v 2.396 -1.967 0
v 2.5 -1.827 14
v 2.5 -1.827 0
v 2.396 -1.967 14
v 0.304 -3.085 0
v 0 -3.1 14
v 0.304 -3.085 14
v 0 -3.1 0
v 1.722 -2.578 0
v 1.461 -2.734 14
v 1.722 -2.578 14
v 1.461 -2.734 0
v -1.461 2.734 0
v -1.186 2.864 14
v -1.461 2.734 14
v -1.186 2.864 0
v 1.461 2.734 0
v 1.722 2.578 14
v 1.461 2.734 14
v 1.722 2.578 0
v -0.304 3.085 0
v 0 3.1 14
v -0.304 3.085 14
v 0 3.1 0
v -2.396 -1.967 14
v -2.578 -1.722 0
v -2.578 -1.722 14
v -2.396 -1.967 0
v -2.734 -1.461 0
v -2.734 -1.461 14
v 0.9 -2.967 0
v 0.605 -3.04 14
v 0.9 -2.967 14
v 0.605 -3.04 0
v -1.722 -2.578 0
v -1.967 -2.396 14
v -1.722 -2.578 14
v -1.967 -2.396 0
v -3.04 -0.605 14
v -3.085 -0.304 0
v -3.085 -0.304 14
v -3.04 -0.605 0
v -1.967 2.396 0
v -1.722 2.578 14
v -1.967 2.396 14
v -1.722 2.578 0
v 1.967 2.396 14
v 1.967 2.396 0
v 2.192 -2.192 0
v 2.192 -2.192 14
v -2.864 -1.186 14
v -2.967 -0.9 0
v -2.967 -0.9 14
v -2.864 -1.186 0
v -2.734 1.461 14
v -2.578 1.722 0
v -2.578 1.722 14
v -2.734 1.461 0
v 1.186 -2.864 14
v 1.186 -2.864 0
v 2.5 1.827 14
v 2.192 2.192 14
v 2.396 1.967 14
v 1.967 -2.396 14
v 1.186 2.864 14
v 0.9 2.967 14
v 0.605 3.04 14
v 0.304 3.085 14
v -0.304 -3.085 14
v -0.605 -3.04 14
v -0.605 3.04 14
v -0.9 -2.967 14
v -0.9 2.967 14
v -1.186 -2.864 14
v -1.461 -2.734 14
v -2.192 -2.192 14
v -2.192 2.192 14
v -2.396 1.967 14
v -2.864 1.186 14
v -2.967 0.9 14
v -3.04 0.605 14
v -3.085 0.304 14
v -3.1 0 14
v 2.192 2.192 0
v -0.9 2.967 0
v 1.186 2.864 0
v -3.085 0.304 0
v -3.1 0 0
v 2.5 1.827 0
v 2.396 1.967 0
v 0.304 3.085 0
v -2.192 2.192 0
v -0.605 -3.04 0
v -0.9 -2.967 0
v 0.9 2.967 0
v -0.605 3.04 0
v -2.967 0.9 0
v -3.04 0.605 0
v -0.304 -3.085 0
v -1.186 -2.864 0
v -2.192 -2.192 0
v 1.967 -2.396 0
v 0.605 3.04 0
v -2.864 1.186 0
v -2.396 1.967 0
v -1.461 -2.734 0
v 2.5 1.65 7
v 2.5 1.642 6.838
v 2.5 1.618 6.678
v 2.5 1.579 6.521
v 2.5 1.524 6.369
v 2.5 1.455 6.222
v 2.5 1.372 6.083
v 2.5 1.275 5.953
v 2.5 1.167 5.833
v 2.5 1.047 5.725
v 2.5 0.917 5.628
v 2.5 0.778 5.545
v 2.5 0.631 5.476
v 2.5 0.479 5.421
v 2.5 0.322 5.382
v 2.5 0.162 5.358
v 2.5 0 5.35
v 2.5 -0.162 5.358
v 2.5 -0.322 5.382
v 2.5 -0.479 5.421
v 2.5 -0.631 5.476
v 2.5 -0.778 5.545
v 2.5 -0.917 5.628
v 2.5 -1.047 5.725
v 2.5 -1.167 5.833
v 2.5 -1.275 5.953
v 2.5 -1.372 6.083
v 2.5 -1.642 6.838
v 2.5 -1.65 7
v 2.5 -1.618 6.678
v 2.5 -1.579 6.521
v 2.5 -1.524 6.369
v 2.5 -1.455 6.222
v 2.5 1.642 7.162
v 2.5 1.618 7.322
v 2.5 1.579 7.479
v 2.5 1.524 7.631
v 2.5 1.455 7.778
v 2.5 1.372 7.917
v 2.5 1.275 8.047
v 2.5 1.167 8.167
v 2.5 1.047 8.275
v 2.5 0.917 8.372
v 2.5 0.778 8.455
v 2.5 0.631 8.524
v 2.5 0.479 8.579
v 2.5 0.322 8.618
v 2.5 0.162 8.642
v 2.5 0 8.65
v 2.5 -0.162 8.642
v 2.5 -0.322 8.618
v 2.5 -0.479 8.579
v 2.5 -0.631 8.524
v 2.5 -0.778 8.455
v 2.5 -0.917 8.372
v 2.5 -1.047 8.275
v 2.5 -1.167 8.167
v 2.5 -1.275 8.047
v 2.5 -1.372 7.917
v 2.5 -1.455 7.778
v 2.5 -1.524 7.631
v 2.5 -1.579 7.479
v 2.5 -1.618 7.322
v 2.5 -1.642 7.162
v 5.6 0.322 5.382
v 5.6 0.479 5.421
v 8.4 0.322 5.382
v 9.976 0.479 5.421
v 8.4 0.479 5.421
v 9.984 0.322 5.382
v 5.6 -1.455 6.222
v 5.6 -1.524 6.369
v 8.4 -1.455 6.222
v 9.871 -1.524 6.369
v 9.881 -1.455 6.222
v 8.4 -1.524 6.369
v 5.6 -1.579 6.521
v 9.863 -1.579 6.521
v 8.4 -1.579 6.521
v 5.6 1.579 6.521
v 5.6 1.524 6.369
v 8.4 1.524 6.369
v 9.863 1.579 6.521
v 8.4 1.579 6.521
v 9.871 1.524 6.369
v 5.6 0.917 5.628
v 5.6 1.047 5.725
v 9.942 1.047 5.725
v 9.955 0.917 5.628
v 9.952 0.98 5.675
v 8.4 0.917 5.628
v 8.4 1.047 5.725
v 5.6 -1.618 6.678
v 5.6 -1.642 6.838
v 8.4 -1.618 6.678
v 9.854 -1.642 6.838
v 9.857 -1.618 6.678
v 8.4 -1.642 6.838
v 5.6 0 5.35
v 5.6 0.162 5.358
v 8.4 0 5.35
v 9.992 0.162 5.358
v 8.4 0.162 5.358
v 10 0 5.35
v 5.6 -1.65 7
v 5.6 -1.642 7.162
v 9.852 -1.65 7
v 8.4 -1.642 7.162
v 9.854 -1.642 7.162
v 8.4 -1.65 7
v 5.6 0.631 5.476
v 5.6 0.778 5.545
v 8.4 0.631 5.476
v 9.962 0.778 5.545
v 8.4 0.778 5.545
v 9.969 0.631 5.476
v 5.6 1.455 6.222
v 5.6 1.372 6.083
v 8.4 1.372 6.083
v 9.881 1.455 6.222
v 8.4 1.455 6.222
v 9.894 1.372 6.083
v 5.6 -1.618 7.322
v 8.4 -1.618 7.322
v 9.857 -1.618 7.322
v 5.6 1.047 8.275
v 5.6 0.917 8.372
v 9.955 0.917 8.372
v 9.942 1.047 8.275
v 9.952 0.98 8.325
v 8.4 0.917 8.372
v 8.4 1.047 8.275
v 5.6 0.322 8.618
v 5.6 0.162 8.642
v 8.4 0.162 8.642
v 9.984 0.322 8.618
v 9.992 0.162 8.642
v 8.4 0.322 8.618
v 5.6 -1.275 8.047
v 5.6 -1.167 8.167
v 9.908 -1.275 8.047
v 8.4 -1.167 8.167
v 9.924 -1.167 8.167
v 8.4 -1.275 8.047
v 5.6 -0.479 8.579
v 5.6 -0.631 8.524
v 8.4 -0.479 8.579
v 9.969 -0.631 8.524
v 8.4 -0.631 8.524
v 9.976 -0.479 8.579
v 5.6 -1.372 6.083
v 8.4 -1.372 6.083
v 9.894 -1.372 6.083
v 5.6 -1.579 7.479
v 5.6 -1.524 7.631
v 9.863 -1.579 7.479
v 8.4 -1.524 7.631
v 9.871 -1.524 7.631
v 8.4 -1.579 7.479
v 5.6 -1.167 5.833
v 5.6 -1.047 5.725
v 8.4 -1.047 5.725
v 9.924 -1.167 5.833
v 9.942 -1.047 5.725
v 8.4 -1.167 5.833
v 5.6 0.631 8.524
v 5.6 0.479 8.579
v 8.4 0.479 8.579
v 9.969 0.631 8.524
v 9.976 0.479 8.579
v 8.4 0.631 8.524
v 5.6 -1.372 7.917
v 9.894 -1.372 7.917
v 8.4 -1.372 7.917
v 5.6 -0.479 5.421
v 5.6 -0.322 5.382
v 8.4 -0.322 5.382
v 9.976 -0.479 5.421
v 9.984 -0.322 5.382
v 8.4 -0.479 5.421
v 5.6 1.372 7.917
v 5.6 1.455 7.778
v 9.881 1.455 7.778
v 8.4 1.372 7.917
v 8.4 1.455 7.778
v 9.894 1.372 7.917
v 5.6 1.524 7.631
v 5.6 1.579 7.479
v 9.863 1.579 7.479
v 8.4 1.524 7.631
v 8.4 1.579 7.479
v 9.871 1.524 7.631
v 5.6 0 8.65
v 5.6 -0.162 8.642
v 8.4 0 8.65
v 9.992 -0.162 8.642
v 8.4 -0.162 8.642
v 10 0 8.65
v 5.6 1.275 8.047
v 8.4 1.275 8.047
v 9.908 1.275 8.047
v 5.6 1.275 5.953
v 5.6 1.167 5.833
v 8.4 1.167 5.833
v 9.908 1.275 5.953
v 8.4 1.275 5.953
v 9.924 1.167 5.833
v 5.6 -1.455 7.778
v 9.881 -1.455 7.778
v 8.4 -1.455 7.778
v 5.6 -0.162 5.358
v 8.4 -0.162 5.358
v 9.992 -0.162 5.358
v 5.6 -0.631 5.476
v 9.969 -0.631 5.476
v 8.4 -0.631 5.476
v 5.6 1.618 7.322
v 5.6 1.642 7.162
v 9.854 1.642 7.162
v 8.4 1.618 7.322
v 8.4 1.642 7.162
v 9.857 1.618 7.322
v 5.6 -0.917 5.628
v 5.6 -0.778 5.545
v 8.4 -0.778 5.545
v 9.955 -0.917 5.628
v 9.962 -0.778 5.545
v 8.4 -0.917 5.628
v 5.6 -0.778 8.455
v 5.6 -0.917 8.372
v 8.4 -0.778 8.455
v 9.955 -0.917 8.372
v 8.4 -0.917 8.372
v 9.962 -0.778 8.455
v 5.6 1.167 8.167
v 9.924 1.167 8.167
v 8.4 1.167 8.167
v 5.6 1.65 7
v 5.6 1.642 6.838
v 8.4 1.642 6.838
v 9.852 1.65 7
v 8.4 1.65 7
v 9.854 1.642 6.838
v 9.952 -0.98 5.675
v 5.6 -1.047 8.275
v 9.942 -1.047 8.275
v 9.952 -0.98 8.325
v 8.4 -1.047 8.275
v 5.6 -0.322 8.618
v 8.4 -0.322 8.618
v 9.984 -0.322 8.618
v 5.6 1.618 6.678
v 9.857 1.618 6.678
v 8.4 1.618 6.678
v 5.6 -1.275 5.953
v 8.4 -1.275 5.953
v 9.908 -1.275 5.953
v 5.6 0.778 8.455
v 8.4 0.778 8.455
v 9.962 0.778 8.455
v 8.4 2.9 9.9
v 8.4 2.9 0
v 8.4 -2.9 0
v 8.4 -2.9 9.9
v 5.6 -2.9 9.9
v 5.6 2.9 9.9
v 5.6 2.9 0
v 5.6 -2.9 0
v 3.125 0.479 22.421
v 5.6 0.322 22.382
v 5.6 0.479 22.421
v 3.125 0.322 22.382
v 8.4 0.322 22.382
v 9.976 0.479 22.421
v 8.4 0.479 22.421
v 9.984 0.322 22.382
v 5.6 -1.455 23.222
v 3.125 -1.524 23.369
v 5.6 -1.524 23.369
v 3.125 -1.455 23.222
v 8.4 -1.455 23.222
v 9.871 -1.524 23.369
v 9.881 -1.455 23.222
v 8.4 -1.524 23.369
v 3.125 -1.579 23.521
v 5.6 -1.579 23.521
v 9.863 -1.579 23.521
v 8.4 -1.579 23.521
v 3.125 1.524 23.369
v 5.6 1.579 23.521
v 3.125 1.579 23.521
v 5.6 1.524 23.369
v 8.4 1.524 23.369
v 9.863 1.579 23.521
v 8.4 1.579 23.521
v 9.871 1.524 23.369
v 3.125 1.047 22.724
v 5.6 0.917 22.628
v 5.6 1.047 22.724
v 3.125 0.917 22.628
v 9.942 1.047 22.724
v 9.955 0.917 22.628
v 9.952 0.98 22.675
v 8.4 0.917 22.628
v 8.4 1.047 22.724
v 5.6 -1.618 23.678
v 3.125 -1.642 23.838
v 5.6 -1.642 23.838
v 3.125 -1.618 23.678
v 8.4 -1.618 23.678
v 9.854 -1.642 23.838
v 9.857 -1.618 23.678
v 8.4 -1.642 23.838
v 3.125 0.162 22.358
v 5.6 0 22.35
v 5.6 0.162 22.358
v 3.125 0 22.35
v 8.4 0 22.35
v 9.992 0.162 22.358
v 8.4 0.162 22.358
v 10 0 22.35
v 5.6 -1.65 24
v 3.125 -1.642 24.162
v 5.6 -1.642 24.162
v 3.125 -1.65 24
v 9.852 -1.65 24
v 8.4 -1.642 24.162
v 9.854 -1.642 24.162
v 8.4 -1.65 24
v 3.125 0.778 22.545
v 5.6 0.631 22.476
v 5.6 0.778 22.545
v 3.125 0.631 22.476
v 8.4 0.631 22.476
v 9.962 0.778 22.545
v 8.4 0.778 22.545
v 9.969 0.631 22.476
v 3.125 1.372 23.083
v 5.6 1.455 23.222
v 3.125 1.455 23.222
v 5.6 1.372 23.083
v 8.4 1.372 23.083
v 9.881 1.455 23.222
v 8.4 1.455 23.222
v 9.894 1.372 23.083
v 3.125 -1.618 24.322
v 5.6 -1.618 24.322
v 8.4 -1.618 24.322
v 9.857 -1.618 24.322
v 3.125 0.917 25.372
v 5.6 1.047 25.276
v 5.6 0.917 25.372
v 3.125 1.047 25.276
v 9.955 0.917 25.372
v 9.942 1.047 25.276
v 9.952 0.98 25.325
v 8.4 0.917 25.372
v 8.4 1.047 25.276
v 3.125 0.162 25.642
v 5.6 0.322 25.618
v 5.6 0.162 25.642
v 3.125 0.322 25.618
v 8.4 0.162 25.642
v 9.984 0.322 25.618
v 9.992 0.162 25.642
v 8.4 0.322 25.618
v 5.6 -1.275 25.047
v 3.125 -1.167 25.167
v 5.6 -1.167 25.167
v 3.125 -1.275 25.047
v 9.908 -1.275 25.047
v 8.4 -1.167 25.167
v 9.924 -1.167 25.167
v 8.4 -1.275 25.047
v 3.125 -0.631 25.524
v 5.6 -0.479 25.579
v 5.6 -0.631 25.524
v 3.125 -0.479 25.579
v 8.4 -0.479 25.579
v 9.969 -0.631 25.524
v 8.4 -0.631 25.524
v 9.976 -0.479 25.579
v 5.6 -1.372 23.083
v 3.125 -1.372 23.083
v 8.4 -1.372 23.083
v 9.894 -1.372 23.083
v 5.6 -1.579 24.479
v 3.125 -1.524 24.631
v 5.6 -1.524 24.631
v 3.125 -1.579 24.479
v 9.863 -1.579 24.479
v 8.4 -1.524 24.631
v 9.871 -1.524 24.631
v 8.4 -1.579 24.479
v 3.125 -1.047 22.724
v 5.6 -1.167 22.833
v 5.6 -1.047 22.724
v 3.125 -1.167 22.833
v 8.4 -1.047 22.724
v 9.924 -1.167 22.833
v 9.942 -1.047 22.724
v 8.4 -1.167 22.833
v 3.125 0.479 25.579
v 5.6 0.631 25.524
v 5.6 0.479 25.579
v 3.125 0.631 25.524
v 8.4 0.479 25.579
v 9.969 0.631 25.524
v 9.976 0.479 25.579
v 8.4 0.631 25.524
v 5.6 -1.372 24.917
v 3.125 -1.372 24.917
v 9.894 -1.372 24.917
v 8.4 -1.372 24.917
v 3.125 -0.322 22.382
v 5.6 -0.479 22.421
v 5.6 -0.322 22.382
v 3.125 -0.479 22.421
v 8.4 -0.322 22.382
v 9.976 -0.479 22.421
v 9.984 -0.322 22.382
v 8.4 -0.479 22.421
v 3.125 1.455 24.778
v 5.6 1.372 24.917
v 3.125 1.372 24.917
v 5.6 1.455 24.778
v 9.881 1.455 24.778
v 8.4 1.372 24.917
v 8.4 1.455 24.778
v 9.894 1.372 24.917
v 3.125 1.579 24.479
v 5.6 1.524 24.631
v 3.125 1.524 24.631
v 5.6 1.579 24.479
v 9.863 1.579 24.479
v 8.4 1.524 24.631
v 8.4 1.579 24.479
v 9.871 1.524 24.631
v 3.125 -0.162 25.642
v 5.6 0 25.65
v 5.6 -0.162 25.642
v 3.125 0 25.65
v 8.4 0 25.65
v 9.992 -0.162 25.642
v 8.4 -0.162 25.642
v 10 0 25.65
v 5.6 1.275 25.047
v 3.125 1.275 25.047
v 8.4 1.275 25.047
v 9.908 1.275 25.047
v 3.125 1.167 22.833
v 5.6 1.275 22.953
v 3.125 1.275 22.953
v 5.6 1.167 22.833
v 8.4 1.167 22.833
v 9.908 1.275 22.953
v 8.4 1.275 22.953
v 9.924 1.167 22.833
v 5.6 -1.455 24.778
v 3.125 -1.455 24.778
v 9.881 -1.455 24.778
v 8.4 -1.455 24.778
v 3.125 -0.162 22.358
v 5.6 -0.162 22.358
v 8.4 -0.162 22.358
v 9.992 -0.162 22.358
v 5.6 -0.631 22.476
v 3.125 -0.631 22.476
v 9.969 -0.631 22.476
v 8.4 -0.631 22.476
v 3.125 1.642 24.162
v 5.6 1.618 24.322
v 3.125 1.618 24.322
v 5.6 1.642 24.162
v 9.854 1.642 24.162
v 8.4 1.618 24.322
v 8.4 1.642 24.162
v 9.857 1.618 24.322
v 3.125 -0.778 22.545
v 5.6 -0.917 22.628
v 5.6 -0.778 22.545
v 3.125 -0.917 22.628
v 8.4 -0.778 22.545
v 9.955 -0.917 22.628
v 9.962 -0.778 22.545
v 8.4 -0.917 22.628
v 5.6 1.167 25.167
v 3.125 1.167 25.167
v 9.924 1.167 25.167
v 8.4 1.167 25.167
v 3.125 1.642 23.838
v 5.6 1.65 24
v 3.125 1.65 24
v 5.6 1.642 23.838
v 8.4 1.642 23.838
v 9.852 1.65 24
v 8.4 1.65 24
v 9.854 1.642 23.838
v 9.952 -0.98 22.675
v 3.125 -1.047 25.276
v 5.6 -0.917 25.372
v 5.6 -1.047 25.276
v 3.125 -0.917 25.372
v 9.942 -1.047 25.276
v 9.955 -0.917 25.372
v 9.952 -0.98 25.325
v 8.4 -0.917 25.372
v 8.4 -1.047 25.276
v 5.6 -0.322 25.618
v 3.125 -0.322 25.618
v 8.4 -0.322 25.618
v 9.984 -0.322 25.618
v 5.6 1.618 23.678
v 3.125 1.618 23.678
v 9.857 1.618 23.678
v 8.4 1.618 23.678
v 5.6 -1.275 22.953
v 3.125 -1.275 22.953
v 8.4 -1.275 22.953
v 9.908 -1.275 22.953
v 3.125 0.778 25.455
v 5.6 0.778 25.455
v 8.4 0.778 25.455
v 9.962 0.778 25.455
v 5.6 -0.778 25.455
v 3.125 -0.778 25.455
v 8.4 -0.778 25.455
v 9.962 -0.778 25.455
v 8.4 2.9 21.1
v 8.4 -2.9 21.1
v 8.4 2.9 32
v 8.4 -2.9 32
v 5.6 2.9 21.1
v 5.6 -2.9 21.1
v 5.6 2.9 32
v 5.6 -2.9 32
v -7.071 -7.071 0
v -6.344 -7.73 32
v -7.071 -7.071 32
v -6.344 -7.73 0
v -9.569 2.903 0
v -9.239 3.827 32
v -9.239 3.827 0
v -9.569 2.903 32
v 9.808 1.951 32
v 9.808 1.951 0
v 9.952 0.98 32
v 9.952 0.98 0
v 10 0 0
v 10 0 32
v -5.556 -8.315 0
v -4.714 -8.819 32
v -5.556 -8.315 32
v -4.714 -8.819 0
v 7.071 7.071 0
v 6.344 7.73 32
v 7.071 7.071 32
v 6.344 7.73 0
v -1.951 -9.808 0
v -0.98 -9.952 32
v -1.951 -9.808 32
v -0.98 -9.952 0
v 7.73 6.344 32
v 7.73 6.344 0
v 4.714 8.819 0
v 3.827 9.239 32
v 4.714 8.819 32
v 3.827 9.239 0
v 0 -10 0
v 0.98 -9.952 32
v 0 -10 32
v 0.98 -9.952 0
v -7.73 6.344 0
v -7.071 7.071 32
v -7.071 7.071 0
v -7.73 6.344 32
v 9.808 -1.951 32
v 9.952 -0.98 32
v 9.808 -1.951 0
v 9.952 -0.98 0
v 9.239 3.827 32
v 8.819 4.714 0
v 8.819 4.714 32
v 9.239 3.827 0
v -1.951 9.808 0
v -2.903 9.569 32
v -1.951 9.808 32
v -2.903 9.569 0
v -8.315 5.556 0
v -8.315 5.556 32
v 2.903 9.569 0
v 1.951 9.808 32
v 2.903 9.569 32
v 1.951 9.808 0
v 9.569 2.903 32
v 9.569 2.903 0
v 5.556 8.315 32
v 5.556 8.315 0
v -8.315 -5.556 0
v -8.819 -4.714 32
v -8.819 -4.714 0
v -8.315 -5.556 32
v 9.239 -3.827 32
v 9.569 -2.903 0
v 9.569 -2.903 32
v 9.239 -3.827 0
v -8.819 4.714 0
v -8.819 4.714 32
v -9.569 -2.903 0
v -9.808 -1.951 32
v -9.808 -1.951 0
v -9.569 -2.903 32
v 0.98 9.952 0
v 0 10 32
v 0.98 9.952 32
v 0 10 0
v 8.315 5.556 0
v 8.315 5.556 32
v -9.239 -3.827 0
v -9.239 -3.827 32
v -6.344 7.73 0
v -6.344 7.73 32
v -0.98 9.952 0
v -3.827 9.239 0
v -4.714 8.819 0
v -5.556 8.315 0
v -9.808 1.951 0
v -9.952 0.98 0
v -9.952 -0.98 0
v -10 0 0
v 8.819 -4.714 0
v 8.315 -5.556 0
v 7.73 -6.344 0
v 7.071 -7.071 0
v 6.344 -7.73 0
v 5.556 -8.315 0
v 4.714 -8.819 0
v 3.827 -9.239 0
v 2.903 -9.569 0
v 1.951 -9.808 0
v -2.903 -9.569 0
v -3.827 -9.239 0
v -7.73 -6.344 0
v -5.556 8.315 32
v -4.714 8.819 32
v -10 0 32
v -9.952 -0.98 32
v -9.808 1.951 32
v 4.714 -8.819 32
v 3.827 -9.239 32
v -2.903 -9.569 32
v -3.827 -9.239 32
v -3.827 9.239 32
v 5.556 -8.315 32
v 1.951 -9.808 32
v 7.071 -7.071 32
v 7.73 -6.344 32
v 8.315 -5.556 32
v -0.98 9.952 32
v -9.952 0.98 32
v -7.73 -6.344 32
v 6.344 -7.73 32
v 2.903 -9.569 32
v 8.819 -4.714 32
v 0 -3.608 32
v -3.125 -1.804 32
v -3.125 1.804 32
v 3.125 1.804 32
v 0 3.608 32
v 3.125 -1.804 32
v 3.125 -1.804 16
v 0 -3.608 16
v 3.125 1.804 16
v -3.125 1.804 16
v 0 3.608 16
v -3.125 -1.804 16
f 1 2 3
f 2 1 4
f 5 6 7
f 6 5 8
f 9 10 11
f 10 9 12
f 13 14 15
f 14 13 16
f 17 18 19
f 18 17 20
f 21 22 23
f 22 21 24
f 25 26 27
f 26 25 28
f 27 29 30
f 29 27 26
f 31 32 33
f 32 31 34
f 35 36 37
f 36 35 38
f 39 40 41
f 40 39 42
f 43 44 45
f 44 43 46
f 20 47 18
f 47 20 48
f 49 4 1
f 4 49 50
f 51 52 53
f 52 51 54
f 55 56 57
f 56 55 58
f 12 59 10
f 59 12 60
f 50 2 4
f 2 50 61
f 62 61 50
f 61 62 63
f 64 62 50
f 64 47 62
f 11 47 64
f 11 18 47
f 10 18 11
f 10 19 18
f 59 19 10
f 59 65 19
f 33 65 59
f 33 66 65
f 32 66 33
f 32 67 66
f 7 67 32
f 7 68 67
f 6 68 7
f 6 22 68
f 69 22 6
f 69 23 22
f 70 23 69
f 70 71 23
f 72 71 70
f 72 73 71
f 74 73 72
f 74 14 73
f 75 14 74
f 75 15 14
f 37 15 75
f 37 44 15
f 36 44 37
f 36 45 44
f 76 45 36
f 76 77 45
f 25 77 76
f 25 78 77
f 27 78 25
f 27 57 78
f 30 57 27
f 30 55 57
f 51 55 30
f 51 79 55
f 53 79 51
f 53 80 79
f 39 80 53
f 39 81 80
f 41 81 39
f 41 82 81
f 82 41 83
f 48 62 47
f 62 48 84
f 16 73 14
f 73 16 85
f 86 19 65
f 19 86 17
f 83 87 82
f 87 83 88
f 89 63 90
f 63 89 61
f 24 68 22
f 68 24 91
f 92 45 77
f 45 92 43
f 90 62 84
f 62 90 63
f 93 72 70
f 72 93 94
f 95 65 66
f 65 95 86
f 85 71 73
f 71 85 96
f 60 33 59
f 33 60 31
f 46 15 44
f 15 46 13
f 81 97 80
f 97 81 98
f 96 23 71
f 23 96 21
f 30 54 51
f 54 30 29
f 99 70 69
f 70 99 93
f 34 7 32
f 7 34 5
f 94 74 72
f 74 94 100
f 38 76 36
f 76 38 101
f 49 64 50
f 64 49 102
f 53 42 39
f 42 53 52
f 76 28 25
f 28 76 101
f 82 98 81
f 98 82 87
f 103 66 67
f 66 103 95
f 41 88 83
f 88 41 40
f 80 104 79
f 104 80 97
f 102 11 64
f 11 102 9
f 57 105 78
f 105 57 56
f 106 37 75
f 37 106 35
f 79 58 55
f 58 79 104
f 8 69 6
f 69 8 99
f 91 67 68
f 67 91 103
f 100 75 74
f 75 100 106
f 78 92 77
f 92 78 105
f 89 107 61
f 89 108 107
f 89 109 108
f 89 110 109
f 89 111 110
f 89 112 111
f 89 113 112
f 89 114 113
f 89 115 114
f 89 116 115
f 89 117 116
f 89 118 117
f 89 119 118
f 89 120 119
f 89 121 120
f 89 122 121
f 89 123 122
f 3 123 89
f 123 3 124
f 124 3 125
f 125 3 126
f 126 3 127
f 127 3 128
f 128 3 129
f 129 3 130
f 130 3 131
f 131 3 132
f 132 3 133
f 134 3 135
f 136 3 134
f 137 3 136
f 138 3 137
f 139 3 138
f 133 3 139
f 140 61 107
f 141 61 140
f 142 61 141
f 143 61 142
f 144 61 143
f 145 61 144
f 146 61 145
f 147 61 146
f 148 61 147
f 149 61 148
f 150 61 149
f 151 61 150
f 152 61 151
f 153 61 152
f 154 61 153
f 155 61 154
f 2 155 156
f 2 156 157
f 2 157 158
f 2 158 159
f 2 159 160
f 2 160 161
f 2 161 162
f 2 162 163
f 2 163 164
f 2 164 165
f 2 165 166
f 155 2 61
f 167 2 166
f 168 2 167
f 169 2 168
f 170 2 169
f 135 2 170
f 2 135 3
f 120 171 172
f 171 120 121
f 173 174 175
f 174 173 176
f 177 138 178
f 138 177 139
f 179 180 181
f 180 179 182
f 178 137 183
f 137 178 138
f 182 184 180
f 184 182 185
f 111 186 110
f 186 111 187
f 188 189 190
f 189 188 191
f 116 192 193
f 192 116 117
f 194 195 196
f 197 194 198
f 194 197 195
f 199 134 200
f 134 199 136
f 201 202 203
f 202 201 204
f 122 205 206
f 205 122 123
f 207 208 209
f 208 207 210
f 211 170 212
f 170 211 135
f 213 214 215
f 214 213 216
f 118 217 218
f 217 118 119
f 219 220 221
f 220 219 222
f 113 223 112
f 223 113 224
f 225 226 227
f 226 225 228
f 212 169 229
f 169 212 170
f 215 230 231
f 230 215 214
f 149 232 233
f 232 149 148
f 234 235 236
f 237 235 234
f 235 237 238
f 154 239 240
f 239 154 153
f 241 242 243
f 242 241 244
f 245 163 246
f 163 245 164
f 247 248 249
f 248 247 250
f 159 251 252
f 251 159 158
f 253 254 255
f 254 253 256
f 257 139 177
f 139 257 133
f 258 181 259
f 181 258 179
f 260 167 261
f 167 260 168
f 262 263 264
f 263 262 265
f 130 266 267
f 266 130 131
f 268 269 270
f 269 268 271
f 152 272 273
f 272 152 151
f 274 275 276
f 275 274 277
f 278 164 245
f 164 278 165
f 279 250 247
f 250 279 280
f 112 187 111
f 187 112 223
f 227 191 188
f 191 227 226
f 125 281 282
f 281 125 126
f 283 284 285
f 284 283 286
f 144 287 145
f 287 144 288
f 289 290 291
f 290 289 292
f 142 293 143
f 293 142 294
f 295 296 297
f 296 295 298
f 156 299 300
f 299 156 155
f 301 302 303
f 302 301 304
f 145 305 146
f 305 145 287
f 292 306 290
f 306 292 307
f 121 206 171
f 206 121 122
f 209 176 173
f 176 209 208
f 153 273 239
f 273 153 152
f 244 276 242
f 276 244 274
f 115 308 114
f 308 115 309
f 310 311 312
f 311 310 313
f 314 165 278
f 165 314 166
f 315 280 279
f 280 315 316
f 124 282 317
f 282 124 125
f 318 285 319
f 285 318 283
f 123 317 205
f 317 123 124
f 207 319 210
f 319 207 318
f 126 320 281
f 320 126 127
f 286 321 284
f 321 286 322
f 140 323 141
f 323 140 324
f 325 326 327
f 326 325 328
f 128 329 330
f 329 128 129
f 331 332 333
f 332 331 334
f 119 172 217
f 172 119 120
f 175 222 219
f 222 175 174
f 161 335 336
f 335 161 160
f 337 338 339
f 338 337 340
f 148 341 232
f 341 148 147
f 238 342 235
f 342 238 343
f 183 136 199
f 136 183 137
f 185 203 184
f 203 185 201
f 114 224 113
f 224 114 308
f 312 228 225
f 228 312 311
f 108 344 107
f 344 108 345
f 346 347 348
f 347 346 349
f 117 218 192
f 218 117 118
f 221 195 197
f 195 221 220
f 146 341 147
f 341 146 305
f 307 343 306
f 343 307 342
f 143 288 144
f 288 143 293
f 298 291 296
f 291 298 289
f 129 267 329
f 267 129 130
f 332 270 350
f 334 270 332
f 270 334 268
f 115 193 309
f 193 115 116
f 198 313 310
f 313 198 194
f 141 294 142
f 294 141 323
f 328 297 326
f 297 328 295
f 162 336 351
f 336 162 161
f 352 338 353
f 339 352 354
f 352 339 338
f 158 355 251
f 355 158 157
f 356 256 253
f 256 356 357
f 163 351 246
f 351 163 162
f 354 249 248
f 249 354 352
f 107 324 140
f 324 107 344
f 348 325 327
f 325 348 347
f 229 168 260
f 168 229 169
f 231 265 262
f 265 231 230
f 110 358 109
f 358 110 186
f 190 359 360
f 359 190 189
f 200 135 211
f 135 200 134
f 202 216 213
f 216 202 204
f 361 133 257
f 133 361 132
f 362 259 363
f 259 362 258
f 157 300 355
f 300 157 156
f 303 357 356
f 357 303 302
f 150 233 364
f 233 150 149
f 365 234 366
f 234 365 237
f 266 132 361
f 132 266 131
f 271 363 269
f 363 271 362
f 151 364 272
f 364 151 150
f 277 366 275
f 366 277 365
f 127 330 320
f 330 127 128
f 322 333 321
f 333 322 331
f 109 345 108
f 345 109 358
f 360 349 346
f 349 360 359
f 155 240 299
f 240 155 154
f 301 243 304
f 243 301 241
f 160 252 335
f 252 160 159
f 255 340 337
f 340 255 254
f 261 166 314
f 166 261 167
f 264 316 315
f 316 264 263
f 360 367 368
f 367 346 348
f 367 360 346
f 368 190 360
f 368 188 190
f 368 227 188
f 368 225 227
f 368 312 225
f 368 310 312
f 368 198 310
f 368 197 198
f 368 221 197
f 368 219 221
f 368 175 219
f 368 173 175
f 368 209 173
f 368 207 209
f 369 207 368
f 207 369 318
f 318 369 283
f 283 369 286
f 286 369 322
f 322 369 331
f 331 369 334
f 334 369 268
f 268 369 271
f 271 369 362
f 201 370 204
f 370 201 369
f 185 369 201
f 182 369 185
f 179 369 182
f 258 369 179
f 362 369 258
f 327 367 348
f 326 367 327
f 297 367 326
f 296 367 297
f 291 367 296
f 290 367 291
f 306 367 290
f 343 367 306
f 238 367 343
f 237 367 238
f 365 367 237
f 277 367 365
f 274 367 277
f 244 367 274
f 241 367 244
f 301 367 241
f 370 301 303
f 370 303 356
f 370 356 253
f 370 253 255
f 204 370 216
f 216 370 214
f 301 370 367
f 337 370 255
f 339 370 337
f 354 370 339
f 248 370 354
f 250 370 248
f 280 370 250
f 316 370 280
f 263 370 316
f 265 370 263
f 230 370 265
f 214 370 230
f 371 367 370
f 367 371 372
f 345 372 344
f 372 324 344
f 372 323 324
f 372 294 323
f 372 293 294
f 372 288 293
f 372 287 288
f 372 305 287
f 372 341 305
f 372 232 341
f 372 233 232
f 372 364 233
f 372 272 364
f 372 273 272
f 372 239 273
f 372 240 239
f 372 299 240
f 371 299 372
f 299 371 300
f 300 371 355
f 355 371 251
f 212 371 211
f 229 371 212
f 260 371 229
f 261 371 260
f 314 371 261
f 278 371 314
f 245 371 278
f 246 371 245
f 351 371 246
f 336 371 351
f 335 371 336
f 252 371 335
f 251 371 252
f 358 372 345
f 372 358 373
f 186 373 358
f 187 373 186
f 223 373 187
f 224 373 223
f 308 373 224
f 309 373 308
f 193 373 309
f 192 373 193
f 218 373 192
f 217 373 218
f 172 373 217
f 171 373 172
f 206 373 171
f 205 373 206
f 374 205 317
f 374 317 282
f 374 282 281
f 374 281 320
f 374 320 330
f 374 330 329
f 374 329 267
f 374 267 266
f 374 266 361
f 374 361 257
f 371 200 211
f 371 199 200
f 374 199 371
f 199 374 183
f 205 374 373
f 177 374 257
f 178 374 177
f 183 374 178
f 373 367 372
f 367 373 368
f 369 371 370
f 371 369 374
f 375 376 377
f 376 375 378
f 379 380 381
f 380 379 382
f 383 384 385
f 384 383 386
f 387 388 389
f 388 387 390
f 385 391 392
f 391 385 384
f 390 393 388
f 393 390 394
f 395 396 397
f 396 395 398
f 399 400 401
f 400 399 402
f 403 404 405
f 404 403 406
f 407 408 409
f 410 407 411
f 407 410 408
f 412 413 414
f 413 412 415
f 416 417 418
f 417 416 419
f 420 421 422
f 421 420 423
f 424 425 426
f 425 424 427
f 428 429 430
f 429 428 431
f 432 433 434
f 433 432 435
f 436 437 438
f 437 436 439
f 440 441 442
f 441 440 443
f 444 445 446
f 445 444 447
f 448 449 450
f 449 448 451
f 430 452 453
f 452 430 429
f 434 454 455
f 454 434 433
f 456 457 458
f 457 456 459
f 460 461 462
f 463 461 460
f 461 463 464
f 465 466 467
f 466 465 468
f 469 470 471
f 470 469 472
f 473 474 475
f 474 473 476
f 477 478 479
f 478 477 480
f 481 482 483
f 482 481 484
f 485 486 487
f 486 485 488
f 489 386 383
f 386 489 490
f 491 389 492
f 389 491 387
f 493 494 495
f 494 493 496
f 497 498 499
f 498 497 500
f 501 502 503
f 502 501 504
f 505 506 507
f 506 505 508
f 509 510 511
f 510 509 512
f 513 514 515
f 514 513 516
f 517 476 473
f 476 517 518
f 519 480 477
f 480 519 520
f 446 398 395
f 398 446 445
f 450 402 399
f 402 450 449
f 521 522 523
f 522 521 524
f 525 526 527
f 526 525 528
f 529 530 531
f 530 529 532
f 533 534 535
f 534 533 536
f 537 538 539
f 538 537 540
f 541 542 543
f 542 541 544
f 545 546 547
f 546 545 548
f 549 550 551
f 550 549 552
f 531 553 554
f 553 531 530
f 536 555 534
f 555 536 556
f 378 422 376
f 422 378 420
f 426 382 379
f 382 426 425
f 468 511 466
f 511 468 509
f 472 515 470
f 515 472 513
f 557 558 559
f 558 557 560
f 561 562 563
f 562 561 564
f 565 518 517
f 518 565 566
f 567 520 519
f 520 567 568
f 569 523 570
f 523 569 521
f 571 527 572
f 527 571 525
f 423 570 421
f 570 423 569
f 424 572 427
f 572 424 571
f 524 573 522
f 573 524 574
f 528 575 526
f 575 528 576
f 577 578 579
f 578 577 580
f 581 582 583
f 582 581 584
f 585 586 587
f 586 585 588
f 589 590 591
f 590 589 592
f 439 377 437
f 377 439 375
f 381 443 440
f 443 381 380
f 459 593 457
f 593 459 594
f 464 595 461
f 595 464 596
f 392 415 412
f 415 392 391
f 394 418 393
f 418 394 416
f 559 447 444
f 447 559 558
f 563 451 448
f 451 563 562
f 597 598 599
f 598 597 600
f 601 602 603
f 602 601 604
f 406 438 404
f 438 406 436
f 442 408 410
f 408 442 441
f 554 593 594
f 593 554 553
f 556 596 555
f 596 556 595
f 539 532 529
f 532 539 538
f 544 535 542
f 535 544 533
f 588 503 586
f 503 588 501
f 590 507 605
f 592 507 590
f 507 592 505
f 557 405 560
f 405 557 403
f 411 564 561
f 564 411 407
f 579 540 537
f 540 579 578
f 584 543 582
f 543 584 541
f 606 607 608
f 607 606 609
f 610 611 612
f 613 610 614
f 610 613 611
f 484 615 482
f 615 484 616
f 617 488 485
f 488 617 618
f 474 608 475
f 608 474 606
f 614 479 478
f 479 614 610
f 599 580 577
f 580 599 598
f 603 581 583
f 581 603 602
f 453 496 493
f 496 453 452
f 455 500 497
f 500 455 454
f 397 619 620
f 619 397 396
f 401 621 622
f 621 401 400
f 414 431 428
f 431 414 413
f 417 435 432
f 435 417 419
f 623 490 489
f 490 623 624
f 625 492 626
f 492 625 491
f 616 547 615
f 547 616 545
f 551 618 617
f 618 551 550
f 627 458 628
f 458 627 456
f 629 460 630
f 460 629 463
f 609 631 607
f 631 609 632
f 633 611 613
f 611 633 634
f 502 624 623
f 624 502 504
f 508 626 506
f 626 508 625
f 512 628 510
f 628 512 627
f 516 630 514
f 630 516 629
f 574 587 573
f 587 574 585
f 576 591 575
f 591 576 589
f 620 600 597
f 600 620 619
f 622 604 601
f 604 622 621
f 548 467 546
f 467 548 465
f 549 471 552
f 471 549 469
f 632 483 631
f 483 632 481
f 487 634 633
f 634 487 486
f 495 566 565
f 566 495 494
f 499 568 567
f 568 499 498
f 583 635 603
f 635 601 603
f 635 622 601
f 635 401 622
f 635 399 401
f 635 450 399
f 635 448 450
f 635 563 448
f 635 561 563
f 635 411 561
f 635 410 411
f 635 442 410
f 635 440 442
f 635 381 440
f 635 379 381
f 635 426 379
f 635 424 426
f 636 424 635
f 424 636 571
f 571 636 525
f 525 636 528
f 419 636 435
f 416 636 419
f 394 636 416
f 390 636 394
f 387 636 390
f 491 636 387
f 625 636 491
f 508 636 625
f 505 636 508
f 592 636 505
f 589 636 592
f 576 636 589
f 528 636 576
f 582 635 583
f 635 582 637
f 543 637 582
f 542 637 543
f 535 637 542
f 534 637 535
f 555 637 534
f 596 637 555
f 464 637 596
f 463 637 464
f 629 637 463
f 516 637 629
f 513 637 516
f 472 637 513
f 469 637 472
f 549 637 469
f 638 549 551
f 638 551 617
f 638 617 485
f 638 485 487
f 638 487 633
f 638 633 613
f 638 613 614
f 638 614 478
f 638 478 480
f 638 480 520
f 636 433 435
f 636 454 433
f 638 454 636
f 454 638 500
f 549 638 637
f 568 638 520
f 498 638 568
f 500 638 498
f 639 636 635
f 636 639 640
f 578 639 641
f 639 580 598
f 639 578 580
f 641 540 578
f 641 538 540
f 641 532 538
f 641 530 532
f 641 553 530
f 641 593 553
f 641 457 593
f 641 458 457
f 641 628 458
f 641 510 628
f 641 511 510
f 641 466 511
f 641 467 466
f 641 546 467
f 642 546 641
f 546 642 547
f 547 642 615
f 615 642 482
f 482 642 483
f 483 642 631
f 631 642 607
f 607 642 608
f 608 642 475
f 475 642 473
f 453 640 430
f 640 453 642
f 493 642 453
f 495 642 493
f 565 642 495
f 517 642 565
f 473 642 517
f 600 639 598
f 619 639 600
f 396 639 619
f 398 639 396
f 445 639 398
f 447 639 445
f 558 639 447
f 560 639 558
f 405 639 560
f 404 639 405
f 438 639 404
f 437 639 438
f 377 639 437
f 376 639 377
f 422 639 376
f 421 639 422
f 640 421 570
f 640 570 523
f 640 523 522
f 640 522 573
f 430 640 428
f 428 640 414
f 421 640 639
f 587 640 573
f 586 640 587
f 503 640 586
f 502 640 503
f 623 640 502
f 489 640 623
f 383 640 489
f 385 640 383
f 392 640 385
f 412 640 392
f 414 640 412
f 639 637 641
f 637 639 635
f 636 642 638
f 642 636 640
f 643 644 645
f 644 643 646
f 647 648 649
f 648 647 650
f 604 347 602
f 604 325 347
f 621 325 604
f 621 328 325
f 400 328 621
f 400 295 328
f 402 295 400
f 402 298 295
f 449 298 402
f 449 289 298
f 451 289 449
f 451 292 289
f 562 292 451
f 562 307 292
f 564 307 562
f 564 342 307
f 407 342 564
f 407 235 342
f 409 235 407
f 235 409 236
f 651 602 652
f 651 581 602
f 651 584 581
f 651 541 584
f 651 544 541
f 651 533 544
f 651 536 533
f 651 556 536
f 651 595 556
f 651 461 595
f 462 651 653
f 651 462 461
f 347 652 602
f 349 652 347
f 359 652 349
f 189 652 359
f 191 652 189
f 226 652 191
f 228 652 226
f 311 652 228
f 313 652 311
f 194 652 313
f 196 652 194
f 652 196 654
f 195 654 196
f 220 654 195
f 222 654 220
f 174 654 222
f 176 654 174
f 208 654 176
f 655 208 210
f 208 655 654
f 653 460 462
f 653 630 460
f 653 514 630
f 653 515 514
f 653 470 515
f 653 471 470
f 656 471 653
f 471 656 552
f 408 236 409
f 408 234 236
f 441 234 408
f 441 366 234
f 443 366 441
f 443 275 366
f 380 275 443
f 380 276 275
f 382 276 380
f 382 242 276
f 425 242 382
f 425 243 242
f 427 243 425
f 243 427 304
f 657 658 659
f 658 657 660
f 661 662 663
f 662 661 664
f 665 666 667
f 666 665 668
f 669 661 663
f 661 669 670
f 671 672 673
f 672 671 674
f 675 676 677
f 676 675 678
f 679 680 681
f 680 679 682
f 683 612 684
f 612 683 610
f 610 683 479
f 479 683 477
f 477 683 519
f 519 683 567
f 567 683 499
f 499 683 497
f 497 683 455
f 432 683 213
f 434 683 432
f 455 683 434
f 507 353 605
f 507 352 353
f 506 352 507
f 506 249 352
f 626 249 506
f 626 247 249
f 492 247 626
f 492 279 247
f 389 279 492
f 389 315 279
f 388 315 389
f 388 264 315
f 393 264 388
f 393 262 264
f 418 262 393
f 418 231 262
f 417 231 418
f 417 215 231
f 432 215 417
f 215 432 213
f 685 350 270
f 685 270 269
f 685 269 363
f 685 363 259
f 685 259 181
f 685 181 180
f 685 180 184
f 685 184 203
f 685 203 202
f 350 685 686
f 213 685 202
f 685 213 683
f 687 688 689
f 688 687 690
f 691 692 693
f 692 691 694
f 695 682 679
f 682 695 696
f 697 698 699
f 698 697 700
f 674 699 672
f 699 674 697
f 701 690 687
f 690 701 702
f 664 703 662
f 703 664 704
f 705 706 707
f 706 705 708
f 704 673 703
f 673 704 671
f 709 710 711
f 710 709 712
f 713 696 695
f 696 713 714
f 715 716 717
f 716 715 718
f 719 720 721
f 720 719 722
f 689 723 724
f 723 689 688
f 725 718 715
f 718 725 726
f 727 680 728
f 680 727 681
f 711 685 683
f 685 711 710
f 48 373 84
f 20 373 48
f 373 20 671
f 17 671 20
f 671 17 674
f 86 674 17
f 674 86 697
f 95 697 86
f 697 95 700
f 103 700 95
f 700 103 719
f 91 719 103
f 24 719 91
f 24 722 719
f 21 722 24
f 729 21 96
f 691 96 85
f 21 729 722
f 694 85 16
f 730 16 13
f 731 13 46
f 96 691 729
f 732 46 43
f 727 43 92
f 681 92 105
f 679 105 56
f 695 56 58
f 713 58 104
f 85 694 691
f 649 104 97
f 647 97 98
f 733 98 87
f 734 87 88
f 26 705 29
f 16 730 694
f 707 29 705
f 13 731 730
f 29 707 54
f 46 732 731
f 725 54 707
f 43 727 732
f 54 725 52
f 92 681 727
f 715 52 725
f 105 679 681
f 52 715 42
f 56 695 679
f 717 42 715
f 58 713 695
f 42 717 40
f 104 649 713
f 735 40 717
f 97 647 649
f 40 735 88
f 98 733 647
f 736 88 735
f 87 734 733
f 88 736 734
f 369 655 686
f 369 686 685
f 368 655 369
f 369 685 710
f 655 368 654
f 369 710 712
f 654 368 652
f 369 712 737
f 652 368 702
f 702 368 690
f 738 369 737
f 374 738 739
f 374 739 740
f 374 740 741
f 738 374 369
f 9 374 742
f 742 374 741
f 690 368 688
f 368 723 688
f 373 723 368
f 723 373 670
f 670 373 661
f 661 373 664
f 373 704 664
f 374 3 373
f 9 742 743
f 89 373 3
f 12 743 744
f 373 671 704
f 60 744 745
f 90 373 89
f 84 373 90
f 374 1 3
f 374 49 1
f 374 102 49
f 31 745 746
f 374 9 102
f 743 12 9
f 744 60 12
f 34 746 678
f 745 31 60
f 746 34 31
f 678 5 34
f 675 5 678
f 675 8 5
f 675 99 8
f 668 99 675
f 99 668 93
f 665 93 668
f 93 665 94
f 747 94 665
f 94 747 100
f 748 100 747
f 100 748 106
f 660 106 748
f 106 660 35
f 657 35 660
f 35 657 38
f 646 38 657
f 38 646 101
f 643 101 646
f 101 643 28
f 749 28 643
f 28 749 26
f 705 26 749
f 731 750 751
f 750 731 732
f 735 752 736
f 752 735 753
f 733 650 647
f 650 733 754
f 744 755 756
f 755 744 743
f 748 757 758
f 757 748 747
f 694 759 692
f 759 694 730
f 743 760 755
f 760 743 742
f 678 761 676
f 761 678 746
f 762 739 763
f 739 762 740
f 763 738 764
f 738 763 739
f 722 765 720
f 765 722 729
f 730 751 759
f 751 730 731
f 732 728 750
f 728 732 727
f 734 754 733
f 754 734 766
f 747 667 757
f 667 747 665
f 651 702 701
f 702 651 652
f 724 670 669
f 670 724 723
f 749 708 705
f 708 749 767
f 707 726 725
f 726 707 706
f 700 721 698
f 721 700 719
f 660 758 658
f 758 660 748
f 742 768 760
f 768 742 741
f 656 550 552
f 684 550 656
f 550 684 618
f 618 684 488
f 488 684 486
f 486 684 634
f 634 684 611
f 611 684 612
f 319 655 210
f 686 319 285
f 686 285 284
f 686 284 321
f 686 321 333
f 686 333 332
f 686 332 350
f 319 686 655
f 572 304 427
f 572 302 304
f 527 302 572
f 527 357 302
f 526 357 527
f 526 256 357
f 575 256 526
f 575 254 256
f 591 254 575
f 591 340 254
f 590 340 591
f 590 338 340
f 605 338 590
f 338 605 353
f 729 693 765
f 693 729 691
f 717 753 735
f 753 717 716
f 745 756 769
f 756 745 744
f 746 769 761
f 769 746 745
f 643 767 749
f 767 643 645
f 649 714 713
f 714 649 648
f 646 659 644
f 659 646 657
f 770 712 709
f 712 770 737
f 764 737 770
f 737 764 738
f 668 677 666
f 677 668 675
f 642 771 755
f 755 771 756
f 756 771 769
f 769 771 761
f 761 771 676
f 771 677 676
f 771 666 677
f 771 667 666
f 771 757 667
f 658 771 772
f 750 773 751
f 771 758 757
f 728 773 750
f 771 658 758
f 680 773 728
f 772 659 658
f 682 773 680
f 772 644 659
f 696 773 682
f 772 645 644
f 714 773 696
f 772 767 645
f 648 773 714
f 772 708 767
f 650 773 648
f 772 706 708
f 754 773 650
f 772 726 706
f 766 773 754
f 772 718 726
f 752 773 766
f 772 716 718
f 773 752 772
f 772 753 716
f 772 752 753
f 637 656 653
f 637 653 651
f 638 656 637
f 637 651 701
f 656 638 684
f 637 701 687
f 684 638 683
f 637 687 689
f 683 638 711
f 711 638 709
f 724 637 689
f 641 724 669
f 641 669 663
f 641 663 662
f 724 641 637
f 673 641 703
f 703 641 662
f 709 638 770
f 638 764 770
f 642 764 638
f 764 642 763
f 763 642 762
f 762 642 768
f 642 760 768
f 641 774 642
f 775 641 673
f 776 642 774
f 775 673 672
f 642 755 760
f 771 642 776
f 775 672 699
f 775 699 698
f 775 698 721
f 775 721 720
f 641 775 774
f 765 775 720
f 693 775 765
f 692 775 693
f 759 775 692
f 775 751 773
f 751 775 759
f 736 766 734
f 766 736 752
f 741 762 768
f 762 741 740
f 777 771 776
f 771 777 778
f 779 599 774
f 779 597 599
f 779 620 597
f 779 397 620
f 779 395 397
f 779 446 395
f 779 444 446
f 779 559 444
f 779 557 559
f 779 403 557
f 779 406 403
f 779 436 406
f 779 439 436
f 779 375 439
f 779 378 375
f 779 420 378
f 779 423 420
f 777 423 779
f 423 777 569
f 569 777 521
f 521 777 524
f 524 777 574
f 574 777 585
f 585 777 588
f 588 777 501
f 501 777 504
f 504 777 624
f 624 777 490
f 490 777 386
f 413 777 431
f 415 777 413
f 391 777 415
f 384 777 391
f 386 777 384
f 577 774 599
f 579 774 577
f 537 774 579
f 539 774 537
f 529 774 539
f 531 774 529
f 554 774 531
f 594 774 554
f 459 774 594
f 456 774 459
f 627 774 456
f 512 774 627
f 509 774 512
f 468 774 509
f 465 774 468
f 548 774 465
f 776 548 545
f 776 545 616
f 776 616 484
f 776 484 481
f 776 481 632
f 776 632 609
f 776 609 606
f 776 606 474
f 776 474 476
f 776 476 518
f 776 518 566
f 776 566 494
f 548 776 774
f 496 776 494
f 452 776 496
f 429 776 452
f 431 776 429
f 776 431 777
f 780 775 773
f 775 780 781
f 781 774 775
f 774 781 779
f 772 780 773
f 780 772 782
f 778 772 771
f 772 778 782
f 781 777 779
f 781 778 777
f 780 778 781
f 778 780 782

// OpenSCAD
// TROTTEN kaplin: motor mili (6 mm D-kesit) <-> 6 mm altıgen çubuk (kesilmiş alyan)
// Dik basılır, motor ucu tablada. PETG, %100 doluluk veya 6+ duvar önerilir.

dis_cap   = 20;
boy       = 32;

/* [Motor mili – JGB37] */
mil_cap   = 6.2;     // 6 mm + baskı payı
mil_duz   = 5.6;     // düz yüzeyle karşı kenar arası (D-kesit) – kumpasla ölç
mil_derin = 14;

/* [Altıgen çubuk] */
alt_karsi = 6.25;    // 6 mm altıgen + baskı payı (karşılıklı yüzeyler arası)
alt_derin = 16;

/* [Sıkma vidası M3] */
m3_delik  = 3.3;
somun_gen = 5.8;     // M3 somun anahtar ağzı 5.5 + pay
somun_kal = 2.8;

$fn = 64;

module d_kesit() intersection() {
    cylinder(d = mil_cap, h = mil_derin + 0.01);
    translate([-mil_cap, -mil_cap, 0]) cube([mil_cap/2 + mil_duz, 2*mil_cap, mil_derin + 1]);   // düz yüzey x = mil_duz - mil_cap/2
}

module altigen() rotate([0, 0, 30]) cylinder(d = alt_karsi / cos(30), h = alt_derin + 1, $fn = 6);

// sıkma vidası + somun yuvası; yuva vidanın girdiği uçtaki yüze açılır
module sikma(z, ac_yukari) {
    translate([0, 0, z]) rotate([0, 90, 0]) cylinder(d = m3_delik, h = dis_cap);
    r = 5.6;
    translate([r, -somun_gen/2, ac_yukari ? z - somun_gen/2 : -1])
        cube([somun_kal, somun_gen, ac_yukari ? boy - z + somun_gen/2 + 1 : z + somun_gen/2 + 1]);
}

difference() {
    cylinder(d = dis_cap, h = boy);
    translate([0, 0, -0.01]) d_kesit();
    translate([0, 0, boy - alt_derin]) altigen();
    sikma(7, false);                 // motor tarafı: vida D-kesitin düz yüzüne basar
    sikma(boy - 8, true);            // altıgen tarafı: vida altıgenin bir yüzüne basar
}
